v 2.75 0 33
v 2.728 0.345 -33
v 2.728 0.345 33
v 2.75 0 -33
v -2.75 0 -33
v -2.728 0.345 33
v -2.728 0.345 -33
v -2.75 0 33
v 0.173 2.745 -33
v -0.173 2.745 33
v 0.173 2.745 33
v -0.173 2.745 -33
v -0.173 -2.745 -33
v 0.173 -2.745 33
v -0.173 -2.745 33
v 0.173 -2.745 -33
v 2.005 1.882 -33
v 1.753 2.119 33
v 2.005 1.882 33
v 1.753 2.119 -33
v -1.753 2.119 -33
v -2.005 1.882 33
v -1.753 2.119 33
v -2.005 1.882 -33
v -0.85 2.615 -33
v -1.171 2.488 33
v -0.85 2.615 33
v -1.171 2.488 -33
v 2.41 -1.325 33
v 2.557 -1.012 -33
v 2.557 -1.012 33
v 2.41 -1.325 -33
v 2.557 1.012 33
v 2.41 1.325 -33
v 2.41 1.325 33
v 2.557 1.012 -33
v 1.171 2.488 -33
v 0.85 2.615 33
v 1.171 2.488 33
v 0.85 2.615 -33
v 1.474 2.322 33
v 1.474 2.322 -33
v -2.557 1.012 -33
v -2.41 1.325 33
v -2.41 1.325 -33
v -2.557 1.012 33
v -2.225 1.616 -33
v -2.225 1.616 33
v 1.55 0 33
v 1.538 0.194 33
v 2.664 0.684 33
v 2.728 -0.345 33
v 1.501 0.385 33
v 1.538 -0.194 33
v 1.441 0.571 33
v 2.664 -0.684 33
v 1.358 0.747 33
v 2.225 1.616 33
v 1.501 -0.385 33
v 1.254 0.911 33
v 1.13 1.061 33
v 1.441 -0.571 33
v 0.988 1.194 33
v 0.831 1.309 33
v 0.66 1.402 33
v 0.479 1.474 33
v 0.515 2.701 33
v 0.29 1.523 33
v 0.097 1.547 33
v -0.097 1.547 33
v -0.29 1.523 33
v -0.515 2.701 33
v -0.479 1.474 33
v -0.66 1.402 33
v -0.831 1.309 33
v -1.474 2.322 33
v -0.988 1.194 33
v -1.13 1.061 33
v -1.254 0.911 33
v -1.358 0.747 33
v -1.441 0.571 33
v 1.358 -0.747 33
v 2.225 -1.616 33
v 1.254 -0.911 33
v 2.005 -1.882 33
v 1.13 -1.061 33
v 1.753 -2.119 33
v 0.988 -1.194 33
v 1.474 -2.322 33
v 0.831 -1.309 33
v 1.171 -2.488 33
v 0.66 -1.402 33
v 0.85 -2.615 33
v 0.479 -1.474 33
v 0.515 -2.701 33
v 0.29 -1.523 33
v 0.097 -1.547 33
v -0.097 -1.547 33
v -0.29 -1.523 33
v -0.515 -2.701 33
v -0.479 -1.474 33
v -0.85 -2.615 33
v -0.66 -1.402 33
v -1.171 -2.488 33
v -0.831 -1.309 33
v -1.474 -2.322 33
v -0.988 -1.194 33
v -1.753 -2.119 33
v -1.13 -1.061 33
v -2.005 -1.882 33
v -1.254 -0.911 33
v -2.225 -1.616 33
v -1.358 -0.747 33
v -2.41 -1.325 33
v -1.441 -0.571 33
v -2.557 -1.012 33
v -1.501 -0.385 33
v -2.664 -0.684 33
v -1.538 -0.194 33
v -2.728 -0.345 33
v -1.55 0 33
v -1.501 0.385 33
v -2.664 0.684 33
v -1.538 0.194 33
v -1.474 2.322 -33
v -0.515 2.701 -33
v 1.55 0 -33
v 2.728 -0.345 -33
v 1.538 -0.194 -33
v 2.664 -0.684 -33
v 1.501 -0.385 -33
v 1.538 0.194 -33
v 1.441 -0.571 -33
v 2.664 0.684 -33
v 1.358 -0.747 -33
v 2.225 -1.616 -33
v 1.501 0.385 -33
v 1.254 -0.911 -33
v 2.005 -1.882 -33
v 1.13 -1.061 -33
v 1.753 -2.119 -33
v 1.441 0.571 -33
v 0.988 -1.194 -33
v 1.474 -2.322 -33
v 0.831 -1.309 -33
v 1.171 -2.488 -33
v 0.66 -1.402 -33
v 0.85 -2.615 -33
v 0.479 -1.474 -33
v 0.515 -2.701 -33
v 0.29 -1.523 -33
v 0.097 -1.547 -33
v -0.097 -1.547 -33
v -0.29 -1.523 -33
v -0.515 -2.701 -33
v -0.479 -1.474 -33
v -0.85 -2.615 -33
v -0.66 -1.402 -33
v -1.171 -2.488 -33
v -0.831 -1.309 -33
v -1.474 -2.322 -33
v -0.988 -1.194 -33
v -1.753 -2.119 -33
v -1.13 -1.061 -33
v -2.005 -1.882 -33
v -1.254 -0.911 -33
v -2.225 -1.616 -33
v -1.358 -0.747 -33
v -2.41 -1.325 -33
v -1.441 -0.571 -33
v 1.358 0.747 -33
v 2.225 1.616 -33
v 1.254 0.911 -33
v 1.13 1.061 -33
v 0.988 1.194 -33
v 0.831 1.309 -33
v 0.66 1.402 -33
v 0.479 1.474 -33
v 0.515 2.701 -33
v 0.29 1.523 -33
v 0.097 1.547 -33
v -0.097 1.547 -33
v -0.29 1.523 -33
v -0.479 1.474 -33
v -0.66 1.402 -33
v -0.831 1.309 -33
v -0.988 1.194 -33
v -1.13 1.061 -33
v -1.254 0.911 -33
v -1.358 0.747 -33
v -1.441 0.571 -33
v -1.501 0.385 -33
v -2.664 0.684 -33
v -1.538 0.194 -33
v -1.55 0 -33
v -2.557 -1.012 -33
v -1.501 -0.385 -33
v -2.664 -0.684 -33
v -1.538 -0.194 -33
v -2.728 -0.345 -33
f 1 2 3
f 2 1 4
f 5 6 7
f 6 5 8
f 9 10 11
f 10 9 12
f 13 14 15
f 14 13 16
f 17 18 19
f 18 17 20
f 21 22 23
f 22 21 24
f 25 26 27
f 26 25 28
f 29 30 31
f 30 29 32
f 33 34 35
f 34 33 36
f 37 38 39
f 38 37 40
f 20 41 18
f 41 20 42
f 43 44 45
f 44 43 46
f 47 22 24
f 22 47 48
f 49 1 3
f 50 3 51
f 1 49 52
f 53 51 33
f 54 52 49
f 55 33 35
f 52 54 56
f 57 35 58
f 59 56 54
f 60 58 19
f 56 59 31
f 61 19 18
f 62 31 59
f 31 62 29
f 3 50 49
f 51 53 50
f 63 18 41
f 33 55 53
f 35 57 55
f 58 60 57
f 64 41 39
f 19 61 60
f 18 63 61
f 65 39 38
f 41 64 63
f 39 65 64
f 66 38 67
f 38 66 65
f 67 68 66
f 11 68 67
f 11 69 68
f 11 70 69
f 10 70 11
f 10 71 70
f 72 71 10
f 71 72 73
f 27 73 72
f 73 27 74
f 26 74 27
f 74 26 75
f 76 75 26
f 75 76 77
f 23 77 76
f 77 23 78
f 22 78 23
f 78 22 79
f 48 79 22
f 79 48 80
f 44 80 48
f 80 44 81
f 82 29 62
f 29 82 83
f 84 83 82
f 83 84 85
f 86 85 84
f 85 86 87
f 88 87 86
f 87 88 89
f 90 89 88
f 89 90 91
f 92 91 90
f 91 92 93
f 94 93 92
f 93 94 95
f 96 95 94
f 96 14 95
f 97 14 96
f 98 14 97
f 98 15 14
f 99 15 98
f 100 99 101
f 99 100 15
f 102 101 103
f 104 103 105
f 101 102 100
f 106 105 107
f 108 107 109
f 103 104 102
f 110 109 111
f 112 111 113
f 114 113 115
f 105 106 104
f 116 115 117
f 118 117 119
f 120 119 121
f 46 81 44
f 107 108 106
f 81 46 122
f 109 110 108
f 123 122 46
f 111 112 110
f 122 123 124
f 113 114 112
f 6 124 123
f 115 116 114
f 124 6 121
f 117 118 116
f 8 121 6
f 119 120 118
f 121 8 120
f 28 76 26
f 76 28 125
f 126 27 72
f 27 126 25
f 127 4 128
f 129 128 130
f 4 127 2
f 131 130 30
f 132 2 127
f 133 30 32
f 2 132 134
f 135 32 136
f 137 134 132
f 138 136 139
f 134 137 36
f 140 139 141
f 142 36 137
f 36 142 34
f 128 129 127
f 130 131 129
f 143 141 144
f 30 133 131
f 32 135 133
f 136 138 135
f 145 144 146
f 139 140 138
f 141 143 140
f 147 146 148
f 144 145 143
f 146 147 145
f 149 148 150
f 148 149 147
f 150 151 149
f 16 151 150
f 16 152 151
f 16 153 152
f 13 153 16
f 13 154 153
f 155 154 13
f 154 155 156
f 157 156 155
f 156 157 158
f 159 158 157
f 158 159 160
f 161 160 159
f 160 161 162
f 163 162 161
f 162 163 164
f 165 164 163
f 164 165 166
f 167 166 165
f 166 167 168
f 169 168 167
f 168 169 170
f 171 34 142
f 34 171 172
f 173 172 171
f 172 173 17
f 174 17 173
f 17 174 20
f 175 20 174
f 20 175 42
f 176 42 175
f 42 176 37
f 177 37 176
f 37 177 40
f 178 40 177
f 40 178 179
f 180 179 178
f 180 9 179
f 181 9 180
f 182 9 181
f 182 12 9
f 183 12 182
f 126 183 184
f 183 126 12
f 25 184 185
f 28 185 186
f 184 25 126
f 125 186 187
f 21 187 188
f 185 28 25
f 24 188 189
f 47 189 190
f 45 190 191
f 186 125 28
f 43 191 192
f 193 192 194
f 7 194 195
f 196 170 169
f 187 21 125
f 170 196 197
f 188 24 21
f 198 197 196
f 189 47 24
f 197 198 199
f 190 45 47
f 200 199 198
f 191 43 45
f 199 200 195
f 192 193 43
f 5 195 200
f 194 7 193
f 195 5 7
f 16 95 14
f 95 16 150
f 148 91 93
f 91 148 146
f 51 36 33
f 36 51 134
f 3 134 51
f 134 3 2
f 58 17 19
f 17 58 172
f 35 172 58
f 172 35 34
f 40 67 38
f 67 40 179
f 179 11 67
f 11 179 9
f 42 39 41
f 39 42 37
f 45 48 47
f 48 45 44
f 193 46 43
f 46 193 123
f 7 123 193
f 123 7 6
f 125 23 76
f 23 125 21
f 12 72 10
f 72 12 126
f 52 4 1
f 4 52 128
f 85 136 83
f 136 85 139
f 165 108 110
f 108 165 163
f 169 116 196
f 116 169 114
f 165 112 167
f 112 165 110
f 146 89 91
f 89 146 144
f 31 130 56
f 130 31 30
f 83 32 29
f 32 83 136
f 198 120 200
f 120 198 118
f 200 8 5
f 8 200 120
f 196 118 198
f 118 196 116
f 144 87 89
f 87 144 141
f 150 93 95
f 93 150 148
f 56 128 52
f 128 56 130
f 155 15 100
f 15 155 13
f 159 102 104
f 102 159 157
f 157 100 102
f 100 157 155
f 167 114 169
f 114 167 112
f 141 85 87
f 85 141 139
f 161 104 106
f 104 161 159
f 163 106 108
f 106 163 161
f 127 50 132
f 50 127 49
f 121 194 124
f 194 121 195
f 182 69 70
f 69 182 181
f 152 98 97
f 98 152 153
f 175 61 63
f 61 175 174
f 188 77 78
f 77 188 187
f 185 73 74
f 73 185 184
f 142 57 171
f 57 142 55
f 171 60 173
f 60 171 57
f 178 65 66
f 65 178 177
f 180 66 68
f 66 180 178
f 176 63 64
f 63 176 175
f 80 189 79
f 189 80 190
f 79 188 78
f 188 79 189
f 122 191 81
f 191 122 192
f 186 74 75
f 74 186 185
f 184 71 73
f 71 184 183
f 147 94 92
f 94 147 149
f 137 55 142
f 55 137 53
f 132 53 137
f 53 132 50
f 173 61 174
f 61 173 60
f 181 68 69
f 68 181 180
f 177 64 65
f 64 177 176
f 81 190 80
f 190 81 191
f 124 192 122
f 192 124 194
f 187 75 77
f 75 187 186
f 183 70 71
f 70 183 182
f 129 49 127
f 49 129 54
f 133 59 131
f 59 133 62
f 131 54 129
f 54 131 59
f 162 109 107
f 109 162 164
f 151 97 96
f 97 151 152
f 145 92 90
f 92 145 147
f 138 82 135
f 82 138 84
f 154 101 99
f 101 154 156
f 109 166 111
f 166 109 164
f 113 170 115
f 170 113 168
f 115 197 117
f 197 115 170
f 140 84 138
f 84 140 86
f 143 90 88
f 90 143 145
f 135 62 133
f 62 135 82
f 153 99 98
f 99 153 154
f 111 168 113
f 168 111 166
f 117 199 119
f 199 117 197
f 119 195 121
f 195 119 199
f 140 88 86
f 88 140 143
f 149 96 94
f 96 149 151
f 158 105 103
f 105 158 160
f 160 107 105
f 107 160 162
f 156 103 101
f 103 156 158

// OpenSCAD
$fn = 50;


difference() {
	union() {
		translate(v = [0, 0, -33.0000000000]) {
			cylinder(h = 66, r = 2.7500000000);
		}
	}
	union() {
		translate(v = [0, 0, -100.0000000000]) {
			cylinder(h = 200, r = 1.5500000000);
		}
	}
}
